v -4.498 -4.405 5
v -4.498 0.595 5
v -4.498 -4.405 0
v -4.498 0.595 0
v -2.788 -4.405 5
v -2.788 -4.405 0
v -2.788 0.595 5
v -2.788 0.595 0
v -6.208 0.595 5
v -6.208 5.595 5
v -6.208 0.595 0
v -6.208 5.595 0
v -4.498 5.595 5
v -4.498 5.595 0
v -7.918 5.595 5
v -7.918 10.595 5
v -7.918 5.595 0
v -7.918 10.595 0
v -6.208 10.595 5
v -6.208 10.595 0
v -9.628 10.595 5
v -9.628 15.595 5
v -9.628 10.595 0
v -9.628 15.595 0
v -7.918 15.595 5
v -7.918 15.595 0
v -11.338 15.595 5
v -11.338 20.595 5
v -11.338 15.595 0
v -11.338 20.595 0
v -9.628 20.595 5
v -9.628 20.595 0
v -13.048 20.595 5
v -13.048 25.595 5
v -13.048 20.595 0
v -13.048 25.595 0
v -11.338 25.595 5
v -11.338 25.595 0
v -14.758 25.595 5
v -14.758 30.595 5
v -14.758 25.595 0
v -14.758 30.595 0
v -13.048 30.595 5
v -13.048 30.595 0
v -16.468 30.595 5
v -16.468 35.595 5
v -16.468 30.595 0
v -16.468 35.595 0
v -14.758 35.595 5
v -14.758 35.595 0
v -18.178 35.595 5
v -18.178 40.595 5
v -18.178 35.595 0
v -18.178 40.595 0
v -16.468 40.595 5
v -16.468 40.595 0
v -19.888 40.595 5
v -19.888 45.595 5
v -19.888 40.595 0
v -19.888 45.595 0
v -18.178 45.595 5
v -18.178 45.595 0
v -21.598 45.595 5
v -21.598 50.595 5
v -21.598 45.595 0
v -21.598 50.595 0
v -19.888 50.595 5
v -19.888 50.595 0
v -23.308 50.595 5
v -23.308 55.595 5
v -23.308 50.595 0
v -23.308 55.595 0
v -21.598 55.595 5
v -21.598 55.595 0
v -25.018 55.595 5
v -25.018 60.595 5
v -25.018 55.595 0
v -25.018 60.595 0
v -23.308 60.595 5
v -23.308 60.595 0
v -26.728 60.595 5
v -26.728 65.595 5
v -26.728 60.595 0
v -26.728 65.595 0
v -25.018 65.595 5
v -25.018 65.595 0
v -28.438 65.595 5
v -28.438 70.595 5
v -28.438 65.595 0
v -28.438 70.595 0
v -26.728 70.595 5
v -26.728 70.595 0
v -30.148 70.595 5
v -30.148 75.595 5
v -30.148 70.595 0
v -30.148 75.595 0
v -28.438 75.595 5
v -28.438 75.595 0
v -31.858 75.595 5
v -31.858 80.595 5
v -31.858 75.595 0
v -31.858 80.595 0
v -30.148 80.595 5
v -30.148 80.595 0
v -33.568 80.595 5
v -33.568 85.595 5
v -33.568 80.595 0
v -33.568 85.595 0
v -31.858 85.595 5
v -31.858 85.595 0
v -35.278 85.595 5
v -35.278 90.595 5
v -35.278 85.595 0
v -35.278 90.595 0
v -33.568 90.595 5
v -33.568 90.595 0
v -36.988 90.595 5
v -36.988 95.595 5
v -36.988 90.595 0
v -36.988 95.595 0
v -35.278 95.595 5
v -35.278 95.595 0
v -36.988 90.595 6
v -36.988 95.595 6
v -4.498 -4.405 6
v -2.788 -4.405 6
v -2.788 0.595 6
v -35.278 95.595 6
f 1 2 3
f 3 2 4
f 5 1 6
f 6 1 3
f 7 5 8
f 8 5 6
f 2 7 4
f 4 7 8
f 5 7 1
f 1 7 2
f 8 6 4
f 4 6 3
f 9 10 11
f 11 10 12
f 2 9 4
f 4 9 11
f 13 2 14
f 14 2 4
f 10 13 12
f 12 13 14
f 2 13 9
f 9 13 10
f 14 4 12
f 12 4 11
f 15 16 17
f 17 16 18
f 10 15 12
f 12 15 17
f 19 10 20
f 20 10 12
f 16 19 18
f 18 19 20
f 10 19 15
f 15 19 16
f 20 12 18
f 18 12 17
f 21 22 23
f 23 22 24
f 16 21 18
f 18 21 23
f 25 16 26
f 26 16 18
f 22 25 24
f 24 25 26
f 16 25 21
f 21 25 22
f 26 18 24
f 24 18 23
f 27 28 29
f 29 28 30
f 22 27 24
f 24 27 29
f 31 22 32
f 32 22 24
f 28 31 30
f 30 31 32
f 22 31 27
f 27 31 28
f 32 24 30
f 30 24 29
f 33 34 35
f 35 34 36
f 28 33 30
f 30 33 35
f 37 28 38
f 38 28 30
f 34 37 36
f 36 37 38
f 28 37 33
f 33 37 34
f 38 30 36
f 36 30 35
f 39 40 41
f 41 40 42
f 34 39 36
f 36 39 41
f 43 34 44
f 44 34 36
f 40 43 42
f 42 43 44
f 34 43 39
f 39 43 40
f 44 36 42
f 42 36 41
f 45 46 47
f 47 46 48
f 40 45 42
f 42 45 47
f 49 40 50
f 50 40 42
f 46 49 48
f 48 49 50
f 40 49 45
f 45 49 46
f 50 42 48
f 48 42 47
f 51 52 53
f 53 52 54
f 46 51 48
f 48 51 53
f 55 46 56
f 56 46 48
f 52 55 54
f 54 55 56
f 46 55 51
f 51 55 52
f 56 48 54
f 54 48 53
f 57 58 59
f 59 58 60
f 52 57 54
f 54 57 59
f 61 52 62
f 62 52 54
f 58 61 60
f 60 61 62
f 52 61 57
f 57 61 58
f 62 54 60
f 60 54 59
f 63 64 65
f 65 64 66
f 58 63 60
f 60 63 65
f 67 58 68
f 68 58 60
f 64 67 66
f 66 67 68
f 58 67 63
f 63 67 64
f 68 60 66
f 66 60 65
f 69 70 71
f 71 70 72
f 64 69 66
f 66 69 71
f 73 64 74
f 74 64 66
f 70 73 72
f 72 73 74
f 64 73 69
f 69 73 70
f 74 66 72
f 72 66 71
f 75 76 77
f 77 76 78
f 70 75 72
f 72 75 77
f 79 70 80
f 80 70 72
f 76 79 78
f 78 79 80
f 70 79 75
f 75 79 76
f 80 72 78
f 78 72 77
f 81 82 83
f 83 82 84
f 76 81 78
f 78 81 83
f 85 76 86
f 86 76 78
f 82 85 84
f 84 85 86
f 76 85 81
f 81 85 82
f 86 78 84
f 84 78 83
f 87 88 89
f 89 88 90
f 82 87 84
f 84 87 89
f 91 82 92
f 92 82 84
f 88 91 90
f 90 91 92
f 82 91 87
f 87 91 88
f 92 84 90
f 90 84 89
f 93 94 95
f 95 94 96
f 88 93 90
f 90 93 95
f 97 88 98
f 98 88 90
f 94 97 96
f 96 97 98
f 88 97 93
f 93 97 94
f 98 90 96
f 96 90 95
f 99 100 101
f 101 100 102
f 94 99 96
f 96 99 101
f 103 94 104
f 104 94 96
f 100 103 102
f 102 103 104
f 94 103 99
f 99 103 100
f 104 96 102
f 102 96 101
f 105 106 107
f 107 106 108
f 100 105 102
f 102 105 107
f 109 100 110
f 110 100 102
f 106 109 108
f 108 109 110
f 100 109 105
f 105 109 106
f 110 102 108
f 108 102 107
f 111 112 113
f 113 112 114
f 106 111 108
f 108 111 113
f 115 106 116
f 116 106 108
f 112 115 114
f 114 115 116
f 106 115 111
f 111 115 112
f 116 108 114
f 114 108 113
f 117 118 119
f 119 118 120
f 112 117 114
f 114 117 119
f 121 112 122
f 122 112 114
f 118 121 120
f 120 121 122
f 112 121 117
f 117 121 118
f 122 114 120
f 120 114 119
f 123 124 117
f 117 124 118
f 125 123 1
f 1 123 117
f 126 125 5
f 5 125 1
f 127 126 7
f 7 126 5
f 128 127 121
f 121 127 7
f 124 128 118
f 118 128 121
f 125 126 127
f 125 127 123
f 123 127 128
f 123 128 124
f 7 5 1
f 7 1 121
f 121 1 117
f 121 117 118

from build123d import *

# Parameters (mm, degrees)
SKETCH2_W              = 1.71
SKETCH2_H              = 5
BOSS_EXTRUDE2_DEPTH    = 5
BOSS_EXTRUDE2_2_DEPTH  = 5
BOSS_EXTRUDE2_3_DEPTH  = 5
BOSS_EXTRUDE2_4_DEPTH  = 5
BOSS_EXTRUDE2_5_DEPTH  = 5
BOSS_EXTRUDE2_6_DEPTH  = 5
BOSS_EXTRUDE2_7_DEPTH  = 5
BOSS_EXTRUDE2_8_DEPTH  = 5
BOSS_EXTRUDE2_9_DEPTH  = 5
BOSS_EXTRUDE2_10_DEPTH = 5
BOSS_EXTRUDE2_11_DEPTH = 5
BOSS_EXTRUDE2_12_DEPTH = 5
BOSS_EXTRUDE2_13_DEPTH = 5
BOSS_EXTRUDE2_14_DEPTH = 5
BOSS_EXTRUDE2_15_DEPTH = 5
BOSS_EXTRUDE2_16_DEPTH = 5
BOSS_EXTRUDE2_17_DEPTH = 5
BOSS_EXTRUDE2_18_DEPTH = 5
BOSS_EXTRUDE2_19_DEPTH = 5
BOSS_EXTRUDE2_20_DEPTH = 5
BOSS_EXTRUDE6_DEPTH    = 1


with BuildPart() as part:
    # Sketch2 → Boss-Extrude2 (new body)
    with BuildSketch(Plane.XY):
        with Locations((-3.643043478, -1.905108696)):
            Rectangle(SKETCH2_W, SKETCH2_H)
    extrude(amount=BOSS_EXTRUDE2_DEPTH)


with BuildPart() as body_2:
    # Sketch2 → Boss-Extrude2 2 (new body)
    with BuildSketch(Plane.XY):
        with Locations((-5.353043478, 3.094891304)):
            Rectangle(SKETCH2_W, SKETCH2_H)
    extrude(amount=BOSS_EXTRUDE2_2_DEPTH)


with BuildPart() as body_3:
    # Sketch2 → Boss-Extrude2 3 (new body)
    with BuildSketch(Plane.XY):
        with Locations((-7.063043478, 8.094891304)):
            Rectangle(SKETCH2_W, SKETCH2_H)
    extrude(amount=BOSS_EXTRUDE2_3_DEPTH)


with BuildPart() as body_4:
    # Sketch2 → Boss-Extrude2 4 (new body)
    with BuildSketch(Plane.XY):
        with Locations((-8.773043478, 13.094891304)):
            Rectangle(SKETCH2_W, SKETCH2_H)
    extrude(amount=BOSS_EXTRUDE2_4_DEPTH)


with BuildPart() as body_5:
    # Sketch2 → Boss-Extrude2 5 (new body)
    with BuildSketch(Plane.XY):
        with Locations((-10.483043478, 18.094891304)):
            Rectangle(SKETCH2_W, SKETCH2_H)
    extrude(amount=BOSS_EXTRUDE2_5_DEPTH)


with BuildPart() as body_6:
    # Sketch2 → Boss-Extrude2 6 (new body)
    with BuildSketch(Plane.XY):
        with Locations((-12.193043478, 23.094891304)):
            Rectangle(SKETCH2_W, SKETCH2_H)
    extrude(amount=BOSS_EXTRUDE2_6_DEPTH)


with BuildPart() as body_7:
    # Sketch2 → Boss-Extrude2 7 (new body)
    with BuildSketch(Plane.XY):
        with Locations((-13.903043478, 28.094891304)):
            Rectangle(SKETCH2_W, SKETCH2_H)
    extrude(amount=BOSS_EXTRUDE2_7_DEPTH)


with BuildPart() as body_8:
    # Sketch2 → Boss-Extrude2 8 (new body)
    with BuildSketch(Plane.XY):
        with Locations((-15.613043478, 33.094891304)):
            Rectangle(SKETCH2_W, SKETCH2_H)
    extrude(amount=BOSS_EXTRUDE2_8_DEPTH)


with BuildPart() as body_9:
    # Sketch2 → Boss-Extrude2 9 (new body)
    with BuildSketch(Plane.XY):
        with Locations((-17.323043478, 38.094891304)):
            Rectangle(SKETCH2_W, SKETCH2_H)
    extrude(amount=BOSS_EXTRUDE2_9_DEPTH)


with BuildPart() as body_10:
    # Sketch2 → Boss-Extrude2 10 (new body)
    with BuildSketch(Plane.XY):
        with Locations((-19.033043478, 43.094891304)):
            Rectangle(SKETCH2_W, SKETCH2_H)
    extrude(amount=BOSS_EXTRUDE2_10_DEPTH)


with BuildPart() as body_11:
    # Sketch2 → Boss-Extrude2 11 (new body)
    with BuildSketch(Plane.XY):
        with Locations((-20.743043478, 48.094891304)):
            Rectangle(SKETCH2_W, SKETCH2_H)
    extrude(amount=BOSS_EXTRUDE2_11_DEPTH)


with BuildPart() as body_12:
    # Sketch2 → Boss-Extrude2 12 (new body)
    with BuildSketch(Plane.XY):
        with Locations((-22.453043478, 53.094891304)):
            Rectangle(SKETCH2_W, SKETCH2_H)
    extrude(amount=BOSS_EXTRUDE2_12_DEPTH)


with BuildPart() as body_13:
    # Sketch2 → Boss-Extrude2 13 (new body)
    with BuildSketch(Plane.XY):
        with Locations((-24.163043478, 58.094891304)):
            Rectangle(SKETCH2_W, SKETCH2_H)
    extrude(amount=BOSS_EXTRUDE2_13_DEPTH)


with BuildPart() as body_14:
    # Sketch2 → Boss-Extrude2 14 (new body)
    with BuildSketch(Plane.XY):
        with Locations((-25.873043478, 63.094891304)):
            Rectangle(SKETCH2_W, SKETCH2_H)
    extrude(amount=BOSS_EXTRUDE2_14_DEPTH)


with BuildPart() as body_15:
    # Sketch2 → Boss-Extrude2 15 (new body)
    with BuildSketch(Plane.XY):
        with Locations((-27.583043478, 68.094891304)):
            Rectangle(SKETCH2_W, SKETCH2_H)
    extrude(amount=BOSS_EXTRUDE2_15_DEPTH)


with BuildPart() as body_16:
    # Sketch2 → Boss-Extrude2 16 (new body)
    with BuildSketch(Plane.XY):
        with Locations((-29.293043478, 73.094891304)):
            Rectangle(SKETCH2_W, SKETCH2_H)
    extrude(amount=BOSS_EXTRUDE2_16_DEPTH)


with BuildPart() as body_17:
    # Sketch2 → Boss-Extrude2 17 (new body)
    with BuildSketch(Plane.XY):
        with Locations((-31.003043478, 78.094891304)):
            Rectangle(SKETCH2_W, SKETCH2_H)
    extrude(amount=BOSS_EXTRUDE2_17_DEPTH)


with BuildPart() as body_18:
    # Sketch2 → Boss-Extrude2 18 (new body)
    with BuildSketch(Plane.XY):
        with Locations((-32.713043478, 83.094891304)):
            Rectangle(SKETCH2_W, SKETCH2_H)
    extrude(amount=BOSS_EXTRUDE2_18_DEPTH)


with BuildPart() as body_19:
    # Sketch2 → Boss-Extrude2 19 (new body)
    with BuildSketch(Plane.XY):
        with Locations((-34.423043478, 88.094891304)):
            Rectangle(SKETCH2_W, SKETCH2_H)
    extrude(amount=BOSS_EXTRUDE2_19_DEPTH)


with BuildPart() as body_20:
    # Sketch2 → Boss-Extrude2 20 (new body)
    with BuildSketch(Plane.XY):
        with Locations((-36.133043478, 93.094891304)):
            Rectangle(SKETCH2_W, SKETCH2_H)
    extrude(amount=BOSS_EXTRUDE2_20_DEPTH)


with BuildPart() as body_21:
    # Sketch3 → Boss-Extrude6 (new body)
    with BuildSketch(Plane.XY.offset(5)):
        Polygon((-36.988043478, 90.594891304), (-4.498043478, -4.405108696), (-2.788043478, -4.405108696), (-2.788043478, 0.594891304), (-35.278043478, 95.594891304), (-36.988043478, 95.594891304), align=None)
    extrude(amount=BOSS_EXTRUDE6_DEPTH)


solid = Compound([part.part, body_2.part, body_3.part, body_4.part, body_5.part, body_6.part, body_7.part, body_8.part, body_9.part, body_10.part, body_11.part, body_12.part, body_13.part, body_14.part, body_15.part, body_16.part, body_17.part, body_18.part, body_19.part, body_20.part, body_21.part])
